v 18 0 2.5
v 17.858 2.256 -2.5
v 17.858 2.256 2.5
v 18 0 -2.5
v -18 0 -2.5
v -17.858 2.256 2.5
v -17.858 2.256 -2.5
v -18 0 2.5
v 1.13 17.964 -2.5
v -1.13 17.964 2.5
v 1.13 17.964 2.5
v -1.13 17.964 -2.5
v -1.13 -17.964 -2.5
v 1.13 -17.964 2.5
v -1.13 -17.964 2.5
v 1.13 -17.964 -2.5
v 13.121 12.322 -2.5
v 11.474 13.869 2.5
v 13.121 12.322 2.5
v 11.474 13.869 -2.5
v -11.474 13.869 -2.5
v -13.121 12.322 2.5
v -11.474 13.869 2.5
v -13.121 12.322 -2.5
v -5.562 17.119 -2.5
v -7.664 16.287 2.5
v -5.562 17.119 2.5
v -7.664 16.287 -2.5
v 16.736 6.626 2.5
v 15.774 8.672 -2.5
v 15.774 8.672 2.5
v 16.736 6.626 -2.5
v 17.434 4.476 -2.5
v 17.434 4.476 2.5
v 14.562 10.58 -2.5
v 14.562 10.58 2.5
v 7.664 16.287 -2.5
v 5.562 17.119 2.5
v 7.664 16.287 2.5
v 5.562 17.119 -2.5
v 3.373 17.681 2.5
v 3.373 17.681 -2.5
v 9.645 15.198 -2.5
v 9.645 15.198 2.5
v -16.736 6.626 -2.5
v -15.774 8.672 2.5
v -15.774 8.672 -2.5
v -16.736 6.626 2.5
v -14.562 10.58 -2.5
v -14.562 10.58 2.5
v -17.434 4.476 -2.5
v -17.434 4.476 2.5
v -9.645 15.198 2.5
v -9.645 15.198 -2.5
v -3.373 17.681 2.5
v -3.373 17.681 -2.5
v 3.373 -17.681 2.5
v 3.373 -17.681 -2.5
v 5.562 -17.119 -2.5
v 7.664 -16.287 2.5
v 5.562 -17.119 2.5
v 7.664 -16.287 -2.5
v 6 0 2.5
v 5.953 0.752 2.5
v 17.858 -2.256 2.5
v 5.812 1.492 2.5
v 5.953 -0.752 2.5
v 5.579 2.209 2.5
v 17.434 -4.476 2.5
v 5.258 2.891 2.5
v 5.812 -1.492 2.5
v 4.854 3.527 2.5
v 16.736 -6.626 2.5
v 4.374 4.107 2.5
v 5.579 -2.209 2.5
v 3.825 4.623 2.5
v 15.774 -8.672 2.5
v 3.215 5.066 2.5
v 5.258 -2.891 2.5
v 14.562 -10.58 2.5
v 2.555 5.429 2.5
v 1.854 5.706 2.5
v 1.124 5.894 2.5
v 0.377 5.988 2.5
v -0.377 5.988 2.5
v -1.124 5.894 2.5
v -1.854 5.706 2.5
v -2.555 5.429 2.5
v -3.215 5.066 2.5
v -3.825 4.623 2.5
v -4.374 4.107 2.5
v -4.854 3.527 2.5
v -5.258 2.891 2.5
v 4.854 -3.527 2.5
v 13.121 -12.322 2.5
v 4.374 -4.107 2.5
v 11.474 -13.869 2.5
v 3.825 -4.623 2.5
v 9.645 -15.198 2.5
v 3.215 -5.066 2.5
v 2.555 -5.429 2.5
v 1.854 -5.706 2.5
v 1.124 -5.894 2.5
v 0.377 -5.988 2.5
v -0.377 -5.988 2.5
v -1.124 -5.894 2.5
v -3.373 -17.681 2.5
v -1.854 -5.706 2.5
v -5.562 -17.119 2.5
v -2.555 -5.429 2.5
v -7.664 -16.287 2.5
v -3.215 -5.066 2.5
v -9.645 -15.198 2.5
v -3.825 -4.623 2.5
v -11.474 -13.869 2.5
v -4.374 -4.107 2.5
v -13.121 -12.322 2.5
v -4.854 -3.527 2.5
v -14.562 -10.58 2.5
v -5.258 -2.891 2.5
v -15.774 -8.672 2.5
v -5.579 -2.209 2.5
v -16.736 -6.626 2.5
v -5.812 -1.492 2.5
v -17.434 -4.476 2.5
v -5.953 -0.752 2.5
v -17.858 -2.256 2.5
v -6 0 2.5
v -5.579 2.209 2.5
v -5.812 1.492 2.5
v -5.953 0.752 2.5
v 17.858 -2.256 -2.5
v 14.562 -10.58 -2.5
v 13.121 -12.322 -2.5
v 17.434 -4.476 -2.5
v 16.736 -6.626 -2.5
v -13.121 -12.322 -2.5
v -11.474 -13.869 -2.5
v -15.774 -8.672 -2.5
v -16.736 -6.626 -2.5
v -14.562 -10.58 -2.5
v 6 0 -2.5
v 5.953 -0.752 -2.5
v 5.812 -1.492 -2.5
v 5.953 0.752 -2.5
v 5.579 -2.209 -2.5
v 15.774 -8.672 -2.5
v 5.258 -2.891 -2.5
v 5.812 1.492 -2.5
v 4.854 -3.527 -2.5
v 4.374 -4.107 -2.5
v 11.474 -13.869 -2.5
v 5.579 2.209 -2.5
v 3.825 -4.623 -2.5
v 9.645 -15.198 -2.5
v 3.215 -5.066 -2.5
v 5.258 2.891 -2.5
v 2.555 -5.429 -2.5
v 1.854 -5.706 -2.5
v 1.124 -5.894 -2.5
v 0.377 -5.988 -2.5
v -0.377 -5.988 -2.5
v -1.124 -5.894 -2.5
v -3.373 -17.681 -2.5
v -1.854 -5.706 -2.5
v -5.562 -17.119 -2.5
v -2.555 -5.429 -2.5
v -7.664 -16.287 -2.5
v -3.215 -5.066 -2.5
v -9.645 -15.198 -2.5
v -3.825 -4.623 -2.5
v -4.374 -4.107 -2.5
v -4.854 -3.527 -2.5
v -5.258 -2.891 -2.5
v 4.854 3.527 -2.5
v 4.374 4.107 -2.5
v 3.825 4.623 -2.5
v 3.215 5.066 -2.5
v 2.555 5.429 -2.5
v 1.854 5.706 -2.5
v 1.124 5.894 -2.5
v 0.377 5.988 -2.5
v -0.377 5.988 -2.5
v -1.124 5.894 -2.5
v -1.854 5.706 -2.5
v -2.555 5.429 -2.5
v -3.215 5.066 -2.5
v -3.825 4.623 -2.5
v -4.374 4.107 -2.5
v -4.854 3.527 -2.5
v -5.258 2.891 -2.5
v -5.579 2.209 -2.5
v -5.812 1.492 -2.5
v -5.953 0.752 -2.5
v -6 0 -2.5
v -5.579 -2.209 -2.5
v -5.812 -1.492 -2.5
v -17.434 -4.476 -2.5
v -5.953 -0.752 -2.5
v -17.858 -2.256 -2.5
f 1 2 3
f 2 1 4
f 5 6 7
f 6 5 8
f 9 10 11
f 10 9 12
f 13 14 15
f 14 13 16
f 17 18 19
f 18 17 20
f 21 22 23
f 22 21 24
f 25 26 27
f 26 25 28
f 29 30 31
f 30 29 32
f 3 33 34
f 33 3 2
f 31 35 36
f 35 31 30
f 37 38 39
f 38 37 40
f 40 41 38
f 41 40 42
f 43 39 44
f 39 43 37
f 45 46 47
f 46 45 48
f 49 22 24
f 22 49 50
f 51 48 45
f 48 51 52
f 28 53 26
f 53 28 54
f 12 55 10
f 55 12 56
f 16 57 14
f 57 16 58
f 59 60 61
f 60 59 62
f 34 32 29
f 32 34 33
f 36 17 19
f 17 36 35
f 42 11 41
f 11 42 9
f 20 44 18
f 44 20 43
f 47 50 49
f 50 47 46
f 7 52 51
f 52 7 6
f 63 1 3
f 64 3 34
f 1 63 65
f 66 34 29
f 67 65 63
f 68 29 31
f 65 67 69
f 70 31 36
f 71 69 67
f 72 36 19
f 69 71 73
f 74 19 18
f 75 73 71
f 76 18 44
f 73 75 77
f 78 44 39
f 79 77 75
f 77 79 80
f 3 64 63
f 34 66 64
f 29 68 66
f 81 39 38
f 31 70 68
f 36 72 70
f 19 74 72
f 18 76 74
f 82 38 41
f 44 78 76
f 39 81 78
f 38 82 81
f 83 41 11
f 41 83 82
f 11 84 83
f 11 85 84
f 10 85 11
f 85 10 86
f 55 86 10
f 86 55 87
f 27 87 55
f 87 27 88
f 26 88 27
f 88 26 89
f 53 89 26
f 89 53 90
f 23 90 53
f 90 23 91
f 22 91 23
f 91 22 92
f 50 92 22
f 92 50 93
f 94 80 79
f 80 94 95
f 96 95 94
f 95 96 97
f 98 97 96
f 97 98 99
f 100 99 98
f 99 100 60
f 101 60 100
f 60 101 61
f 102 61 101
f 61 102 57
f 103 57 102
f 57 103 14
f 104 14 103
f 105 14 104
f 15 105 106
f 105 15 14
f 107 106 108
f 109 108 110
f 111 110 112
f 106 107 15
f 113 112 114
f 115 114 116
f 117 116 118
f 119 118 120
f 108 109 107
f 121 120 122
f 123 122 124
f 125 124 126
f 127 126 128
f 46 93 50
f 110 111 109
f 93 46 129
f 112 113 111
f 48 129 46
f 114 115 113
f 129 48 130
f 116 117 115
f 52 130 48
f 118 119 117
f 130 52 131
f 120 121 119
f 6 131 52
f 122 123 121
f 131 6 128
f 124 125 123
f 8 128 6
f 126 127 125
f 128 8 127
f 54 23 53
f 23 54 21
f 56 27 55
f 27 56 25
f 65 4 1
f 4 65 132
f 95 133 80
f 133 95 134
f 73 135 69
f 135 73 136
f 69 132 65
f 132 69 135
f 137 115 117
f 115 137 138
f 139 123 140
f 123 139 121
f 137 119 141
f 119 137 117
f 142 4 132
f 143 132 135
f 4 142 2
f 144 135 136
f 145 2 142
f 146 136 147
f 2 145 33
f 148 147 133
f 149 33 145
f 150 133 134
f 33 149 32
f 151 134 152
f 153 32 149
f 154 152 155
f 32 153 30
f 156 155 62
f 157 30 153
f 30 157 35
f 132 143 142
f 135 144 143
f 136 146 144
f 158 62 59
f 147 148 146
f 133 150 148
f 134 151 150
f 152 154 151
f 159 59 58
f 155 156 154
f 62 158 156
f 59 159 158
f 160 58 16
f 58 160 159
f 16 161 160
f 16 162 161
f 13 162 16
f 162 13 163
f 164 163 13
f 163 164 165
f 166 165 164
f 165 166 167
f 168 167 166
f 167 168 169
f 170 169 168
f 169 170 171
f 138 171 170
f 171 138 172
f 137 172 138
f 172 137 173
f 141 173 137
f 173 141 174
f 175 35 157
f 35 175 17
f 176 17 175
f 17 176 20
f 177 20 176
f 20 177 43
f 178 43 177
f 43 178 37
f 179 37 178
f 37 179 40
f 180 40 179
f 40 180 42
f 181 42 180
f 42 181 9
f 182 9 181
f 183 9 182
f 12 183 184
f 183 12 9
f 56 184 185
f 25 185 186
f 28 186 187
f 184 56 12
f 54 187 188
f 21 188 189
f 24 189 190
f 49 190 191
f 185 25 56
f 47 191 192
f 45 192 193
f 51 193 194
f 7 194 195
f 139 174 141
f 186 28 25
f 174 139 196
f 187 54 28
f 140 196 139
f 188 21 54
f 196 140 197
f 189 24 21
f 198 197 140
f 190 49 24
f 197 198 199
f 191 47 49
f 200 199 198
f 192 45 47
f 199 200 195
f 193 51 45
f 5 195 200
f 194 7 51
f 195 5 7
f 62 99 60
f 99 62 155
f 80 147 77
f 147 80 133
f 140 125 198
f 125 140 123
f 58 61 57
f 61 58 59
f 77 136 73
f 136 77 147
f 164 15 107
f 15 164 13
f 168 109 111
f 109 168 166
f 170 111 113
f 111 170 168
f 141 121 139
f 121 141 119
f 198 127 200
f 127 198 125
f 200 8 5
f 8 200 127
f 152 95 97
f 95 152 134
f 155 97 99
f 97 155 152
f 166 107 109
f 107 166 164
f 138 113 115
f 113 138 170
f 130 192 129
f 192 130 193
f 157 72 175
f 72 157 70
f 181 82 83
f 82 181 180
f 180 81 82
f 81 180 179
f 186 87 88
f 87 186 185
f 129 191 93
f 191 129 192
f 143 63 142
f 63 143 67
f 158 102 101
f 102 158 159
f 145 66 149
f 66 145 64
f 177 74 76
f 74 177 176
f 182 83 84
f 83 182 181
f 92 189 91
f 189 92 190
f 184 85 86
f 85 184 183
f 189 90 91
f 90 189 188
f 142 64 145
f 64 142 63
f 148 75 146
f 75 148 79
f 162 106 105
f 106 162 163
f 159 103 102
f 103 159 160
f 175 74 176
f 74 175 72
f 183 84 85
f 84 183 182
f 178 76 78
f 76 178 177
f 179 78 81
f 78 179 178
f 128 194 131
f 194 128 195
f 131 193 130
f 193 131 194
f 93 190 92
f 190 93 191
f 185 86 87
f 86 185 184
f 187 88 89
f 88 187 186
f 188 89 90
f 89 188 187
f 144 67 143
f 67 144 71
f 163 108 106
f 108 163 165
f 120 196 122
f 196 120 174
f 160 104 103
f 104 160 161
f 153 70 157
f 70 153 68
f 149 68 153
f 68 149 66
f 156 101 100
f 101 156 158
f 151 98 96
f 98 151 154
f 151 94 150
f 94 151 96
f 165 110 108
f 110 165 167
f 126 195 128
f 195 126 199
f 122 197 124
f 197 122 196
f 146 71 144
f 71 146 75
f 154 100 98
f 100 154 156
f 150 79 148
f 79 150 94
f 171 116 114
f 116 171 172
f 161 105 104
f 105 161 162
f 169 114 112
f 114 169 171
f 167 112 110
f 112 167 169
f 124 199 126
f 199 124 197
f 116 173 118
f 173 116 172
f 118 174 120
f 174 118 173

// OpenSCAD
$fn = 50;


difference() {
	union() {
		translate(v = [0, 0, -2.5000000000]) {
			cylinder(h = 5, r = 18.0000000000);
		}
	}
	union() {
		translate(v = [0, 0, -100.0000000000]) {
			cylinder(h = 200, r = 6);
		}
	}
}
